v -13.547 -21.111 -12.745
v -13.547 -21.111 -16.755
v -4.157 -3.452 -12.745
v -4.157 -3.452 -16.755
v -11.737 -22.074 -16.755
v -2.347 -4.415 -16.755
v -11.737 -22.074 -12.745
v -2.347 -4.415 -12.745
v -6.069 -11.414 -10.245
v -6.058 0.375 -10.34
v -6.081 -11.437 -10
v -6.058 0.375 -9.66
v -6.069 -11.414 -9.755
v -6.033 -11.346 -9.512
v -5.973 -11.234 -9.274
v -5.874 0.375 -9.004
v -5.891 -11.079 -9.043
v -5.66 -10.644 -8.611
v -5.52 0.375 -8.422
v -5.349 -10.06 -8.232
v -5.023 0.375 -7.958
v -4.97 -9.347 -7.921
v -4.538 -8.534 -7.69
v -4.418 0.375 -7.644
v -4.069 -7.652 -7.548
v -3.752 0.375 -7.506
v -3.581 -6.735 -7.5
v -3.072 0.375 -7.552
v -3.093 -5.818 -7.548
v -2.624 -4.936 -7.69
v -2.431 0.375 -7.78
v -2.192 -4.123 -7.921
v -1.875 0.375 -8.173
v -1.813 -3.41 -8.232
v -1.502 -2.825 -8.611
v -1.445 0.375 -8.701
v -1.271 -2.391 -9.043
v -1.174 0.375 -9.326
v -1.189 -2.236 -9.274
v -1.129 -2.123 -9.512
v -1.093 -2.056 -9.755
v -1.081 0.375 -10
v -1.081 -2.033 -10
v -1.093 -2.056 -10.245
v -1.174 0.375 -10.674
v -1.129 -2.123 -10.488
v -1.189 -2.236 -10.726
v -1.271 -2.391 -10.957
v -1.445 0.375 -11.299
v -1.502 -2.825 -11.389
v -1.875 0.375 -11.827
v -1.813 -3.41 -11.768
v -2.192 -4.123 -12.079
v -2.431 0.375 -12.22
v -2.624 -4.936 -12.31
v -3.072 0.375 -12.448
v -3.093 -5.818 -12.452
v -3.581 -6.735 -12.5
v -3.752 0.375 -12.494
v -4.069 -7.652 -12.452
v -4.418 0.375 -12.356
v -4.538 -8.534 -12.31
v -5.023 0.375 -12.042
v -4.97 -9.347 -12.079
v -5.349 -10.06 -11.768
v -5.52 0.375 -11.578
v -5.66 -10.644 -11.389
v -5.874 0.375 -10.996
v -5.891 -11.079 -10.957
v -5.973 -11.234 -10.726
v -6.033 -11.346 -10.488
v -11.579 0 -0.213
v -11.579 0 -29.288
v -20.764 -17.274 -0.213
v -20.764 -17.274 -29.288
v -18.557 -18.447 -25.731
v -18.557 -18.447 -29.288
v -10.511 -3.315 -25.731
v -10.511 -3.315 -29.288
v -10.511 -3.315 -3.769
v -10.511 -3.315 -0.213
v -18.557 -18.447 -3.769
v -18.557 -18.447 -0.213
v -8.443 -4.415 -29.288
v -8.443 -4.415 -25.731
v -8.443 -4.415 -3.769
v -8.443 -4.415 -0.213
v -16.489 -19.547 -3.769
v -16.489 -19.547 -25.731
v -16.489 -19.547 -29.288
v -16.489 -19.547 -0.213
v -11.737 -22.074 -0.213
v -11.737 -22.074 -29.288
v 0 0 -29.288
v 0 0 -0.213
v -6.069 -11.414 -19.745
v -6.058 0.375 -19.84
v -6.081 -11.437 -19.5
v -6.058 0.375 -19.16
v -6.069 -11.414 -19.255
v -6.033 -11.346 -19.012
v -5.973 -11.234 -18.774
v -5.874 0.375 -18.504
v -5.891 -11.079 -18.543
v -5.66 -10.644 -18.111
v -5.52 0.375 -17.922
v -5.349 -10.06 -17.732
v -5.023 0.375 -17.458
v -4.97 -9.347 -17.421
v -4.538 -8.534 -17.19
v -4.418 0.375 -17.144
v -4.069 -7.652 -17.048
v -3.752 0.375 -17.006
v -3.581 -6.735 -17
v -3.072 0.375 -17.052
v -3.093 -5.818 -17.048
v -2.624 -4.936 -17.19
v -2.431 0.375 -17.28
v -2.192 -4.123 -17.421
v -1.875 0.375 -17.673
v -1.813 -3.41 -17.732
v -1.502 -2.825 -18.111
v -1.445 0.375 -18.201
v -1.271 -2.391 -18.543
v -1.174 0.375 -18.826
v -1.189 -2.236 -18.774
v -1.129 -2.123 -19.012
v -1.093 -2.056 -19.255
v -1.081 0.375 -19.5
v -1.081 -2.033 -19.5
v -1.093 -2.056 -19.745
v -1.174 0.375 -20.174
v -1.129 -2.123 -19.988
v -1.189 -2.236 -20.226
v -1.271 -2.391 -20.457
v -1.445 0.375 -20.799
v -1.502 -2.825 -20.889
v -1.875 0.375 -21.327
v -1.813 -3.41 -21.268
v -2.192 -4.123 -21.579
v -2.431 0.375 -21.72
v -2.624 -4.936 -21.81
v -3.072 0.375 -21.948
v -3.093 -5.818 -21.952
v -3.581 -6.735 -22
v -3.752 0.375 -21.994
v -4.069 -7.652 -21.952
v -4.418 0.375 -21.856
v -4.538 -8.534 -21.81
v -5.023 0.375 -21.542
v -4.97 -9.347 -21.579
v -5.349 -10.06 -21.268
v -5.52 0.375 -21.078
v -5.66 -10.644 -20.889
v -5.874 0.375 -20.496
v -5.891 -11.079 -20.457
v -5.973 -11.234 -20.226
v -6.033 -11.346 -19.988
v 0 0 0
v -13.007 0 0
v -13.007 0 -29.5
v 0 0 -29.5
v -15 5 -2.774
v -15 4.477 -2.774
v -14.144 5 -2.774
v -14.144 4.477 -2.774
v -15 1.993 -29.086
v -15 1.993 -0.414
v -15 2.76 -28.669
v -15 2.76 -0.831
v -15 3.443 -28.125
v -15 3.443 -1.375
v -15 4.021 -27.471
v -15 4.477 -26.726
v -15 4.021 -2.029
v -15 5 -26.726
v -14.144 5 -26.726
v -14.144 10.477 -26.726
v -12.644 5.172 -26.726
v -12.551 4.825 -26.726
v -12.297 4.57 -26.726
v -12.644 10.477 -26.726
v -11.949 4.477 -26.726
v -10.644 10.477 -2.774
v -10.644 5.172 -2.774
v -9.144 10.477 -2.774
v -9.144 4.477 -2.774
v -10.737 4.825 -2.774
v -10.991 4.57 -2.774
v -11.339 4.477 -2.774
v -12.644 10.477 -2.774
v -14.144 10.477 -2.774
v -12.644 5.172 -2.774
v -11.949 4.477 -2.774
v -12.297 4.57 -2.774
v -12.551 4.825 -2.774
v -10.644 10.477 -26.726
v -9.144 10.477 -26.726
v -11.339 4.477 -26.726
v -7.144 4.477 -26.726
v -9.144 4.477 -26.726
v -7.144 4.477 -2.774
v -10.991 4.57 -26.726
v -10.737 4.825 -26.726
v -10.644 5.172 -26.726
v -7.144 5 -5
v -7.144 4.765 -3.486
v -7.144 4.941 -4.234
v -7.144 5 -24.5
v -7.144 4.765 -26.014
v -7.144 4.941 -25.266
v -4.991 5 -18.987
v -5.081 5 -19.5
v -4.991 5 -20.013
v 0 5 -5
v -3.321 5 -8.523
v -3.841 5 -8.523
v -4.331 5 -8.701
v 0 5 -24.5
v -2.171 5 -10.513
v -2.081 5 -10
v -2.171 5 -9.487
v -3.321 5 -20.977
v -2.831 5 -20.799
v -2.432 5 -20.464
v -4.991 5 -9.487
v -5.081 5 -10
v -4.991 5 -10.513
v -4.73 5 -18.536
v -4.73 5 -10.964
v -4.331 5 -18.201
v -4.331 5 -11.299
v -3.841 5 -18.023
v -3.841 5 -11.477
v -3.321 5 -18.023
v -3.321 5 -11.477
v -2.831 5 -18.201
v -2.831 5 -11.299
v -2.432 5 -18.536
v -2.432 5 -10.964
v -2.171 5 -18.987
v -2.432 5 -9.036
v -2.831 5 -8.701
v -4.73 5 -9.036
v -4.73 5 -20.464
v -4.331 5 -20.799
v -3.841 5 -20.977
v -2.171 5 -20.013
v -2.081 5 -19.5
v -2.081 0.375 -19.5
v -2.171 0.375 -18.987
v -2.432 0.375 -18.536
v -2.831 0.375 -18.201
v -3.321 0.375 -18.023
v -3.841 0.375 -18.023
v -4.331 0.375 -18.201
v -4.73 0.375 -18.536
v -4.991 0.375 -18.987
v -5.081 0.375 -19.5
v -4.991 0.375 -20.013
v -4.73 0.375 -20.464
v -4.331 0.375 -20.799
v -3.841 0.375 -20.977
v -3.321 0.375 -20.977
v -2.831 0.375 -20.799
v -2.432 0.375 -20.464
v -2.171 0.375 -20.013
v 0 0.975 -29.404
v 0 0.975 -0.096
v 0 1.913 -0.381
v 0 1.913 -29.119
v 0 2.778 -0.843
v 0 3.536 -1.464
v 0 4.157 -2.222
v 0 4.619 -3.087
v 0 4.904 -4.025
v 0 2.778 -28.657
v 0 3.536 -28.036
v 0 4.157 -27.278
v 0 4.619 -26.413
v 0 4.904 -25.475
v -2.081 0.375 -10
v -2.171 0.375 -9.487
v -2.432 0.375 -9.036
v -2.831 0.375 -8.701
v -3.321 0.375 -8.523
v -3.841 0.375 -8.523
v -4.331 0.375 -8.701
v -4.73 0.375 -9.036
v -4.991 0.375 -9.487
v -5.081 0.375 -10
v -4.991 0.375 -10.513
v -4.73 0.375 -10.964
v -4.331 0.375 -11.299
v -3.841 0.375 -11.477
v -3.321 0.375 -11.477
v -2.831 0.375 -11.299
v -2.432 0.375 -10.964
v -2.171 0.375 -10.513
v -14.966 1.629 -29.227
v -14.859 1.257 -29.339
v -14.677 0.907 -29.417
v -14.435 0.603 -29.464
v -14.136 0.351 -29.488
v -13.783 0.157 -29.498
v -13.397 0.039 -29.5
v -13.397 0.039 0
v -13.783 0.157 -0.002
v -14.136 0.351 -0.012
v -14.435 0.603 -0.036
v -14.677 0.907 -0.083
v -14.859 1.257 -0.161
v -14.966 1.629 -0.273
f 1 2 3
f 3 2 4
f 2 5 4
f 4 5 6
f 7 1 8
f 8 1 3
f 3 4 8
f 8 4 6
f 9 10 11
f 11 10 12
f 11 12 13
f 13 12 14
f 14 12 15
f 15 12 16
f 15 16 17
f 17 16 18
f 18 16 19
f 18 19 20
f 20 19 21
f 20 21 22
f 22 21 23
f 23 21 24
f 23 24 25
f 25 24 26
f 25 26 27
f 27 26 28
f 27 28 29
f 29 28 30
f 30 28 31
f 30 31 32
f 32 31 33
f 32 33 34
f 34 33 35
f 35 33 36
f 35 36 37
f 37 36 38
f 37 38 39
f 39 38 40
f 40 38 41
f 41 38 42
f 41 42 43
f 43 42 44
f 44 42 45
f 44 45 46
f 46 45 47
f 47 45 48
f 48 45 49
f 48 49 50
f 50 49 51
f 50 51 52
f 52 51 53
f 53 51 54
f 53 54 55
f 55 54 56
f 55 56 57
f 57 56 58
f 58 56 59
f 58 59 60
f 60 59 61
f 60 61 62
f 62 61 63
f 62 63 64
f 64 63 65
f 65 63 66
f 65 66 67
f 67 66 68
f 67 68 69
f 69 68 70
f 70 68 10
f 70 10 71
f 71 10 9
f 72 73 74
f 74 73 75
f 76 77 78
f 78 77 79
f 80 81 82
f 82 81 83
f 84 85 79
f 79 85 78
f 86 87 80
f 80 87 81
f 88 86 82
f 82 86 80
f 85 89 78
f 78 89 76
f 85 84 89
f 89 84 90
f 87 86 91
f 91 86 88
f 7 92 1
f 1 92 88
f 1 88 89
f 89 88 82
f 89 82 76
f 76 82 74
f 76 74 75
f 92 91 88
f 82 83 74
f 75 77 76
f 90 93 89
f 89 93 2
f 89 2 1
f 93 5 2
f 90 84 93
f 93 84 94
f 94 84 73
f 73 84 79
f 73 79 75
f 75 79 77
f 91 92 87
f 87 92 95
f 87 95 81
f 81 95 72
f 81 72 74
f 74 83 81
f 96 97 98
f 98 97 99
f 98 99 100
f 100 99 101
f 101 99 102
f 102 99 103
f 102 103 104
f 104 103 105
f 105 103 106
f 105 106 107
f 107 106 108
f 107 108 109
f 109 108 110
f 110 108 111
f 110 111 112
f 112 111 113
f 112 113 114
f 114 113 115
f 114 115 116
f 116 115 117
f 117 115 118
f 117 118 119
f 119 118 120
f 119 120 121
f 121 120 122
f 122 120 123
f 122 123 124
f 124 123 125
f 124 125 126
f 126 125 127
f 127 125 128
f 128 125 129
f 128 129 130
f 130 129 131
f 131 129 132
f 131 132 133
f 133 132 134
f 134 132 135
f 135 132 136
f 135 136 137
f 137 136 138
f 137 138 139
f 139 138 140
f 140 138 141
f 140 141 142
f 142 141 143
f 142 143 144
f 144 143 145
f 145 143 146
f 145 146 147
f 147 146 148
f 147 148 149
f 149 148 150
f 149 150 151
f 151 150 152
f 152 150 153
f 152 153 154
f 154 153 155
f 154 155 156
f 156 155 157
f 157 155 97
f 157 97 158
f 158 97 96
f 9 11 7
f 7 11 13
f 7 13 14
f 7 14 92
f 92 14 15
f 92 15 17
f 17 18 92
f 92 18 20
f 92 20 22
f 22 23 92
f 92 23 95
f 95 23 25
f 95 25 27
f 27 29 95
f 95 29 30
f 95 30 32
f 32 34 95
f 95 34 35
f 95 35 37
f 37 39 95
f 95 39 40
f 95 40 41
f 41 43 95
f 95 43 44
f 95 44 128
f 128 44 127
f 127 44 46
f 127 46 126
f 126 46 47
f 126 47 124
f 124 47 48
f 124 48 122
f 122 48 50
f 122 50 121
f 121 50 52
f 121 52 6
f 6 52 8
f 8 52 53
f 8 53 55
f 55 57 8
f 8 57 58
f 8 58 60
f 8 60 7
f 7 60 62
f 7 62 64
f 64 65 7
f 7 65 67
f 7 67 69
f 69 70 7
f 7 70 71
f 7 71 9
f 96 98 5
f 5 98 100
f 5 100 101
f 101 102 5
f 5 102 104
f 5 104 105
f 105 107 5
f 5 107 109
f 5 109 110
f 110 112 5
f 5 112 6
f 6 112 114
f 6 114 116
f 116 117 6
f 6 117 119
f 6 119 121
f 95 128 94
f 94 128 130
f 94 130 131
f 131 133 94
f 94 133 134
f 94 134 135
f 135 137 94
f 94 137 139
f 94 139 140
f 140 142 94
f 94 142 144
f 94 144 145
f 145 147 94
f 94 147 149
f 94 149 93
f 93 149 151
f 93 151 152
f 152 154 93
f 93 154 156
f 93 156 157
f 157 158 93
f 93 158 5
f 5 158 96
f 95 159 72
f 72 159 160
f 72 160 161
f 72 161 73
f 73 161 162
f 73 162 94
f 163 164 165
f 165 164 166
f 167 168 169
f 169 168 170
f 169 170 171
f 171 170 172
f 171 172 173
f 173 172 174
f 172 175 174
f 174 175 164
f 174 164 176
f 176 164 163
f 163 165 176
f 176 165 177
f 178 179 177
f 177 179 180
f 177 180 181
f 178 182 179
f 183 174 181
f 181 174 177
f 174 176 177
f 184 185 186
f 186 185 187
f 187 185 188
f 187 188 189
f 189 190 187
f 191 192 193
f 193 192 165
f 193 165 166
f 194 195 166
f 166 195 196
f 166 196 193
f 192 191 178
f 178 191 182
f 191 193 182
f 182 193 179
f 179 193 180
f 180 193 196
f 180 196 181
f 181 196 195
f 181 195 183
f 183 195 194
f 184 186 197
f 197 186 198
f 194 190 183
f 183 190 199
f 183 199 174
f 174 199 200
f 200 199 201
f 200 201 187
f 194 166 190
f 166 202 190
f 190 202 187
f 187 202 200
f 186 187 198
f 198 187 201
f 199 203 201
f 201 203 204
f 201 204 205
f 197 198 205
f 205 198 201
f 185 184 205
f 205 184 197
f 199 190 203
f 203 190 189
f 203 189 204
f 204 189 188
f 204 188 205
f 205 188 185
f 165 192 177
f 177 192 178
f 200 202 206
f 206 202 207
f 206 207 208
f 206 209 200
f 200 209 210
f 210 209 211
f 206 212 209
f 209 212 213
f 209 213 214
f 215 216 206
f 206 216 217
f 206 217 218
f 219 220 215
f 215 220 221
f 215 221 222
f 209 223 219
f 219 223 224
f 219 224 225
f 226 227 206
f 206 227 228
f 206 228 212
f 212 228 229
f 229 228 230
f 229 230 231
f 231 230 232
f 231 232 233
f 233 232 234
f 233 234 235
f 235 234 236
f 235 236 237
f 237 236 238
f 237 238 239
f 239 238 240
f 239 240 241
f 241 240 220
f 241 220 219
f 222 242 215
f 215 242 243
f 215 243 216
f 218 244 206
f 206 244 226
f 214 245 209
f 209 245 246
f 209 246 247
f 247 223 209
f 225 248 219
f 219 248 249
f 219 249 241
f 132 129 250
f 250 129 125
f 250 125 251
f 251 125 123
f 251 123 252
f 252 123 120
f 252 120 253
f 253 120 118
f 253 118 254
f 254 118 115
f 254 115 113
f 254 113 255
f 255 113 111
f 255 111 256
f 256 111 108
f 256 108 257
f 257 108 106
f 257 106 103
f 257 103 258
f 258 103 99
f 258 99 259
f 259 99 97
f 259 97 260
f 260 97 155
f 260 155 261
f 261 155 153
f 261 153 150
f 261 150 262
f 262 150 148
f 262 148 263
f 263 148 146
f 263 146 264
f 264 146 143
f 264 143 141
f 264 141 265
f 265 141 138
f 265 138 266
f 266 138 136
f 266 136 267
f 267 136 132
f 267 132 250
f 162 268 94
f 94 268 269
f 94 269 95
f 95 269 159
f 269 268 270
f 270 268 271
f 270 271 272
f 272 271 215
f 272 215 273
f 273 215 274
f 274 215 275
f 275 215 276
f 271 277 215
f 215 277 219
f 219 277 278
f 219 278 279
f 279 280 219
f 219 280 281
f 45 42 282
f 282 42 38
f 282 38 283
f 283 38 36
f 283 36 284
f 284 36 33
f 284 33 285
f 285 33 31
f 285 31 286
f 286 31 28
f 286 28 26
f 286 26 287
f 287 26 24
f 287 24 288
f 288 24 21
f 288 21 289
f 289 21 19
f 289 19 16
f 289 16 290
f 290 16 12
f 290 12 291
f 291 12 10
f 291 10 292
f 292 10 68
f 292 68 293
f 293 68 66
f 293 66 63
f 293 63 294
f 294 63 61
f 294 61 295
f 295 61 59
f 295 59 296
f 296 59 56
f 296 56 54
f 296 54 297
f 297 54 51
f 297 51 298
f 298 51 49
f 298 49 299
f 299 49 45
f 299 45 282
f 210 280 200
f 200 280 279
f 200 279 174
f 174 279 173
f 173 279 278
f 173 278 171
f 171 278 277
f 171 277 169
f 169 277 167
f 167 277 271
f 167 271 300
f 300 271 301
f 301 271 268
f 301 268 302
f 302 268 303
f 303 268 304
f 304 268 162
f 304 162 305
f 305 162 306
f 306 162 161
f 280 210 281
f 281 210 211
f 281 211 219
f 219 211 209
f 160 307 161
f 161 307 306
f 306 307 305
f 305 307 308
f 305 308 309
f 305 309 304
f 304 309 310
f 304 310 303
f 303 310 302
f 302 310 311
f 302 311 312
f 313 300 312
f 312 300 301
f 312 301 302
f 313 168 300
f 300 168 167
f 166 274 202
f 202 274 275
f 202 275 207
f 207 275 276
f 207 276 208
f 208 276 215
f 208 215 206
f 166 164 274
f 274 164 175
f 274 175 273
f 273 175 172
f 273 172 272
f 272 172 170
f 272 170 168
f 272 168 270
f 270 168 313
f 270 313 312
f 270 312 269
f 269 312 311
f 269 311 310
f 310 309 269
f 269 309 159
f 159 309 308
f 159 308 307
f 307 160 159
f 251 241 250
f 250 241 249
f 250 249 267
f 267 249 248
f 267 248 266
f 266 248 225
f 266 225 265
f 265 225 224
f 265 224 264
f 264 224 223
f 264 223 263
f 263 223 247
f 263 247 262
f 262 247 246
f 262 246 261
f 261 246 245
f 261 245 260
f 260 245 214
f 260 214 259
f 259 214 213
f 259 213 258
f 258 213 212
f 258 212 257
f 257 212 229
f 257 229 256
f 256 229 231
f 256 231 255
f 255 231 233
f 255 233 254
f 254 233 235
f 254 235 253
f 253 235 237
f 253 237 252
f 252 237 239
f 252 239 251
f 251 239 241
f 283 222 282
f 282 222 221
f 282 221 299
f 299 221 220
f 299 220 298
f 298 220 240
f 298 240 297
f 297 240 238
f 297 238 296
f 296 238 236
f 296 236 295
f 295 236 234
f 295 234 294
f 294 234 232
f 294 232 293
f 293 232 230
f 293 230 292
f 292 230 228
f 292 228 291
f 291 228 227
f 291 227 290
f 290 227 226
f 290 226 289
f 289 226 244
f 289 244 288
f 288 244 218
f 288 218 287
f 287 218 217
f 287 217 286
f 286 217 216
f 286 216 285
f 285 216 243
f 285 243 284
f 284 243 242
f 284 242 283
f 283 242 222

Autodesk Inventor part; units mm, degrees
ref_plane "YZ Plane" through (0, 0, 0) normal (1, 0, 0) x (0, 1, 0)
ref_plane "XZ Plane" through (0, 0, 0) normal (0, 1, 0) x (-1, 0, 0)
sketch "Sketch1" plane through (0, 0, 0) normal (0, 1, 0) x (-1, 0, 0)
  line L0 (0, 0) -> (15, 0)
  line L1 (15, 0) -> (15, -29.5)
  line L2 (15, -29.5) -> (0, -29.5)
  line L3 (0, -29.5) -> (0, 0)
  dimension "d0" = 15
  dimension "d1" = 29.5
extrude "Extrusion1" add sketch "Sketch1" along normal blind 5
fillet "Fillet1" radius 5 2 edges at (-7.5, 5, 0) (-7.5, 5, -29.5)
sketch "Sketch2" plane through (0, 0, 0) normal (0, -1, 0) x (1, 0, 0)
  circle A0 centre (-3.581, -10) radius 1.5
  line L0 (-15, -29.5) -> (-15, 0) projected
  line L1 (-15, -14.75) -> (-4.074, -14.75)
  line L2 (-4.074, 0) -> (-4.074, -29.5) projected
  circle A1 centre (-3.581, -19.5) radius 1.5
  line L3 (0, -27.3987) -> (0, -2.1013) projected
  point P0 (0, 0)
  dimension "d6" = 3
  dimension "d7" = 4.75
  dimension "d8" = 10.926
  dimension "d10" = 3
  dimension "d11" = 4.75
  dimension "d15" = 3.581
  dimension "d16" = 3.581
extrude "Extrusion2" cut sketch "Sketch2" against normal up to surface (5 mm away)
fillet "Fillet3" radius 1.993 1 edges at (-15, 0, -14.75)
sketch "Sketch3" plane through (0, 0, 0) normal (0, -1, 0) x (1, 0, 0)
  circle A0 centre (-3.581, -10) radius 2.5
  circle A1 centre (-3.581, -19.5) radius 2.5
  circle A2 centre (-3.581, -10) radius 1.5 projected
  circle A3 centre (-3.581, -19.5) radius 1.5 projected
  point P0 (0, 0)
  dimension "d18" = 5
  dimension "d19" = 5
  dimension "d20" = 0
  dimension "d21" = 0
  dimension "d22" = 0
  dimension "d23" = 0
extrude "Extrusion3" cut sketch "Sketch3" along normal blind 32.5 and the other way blind 0.375
sketch "Sketch4" plane through (-15, 5, -24.5) normal (-1, 0, 0) x (0, 0, 1)
  line L0 (24.5, -3.007) -> (-5, -3.007)
  line L1 (-5, -3.007) -> (-5, 0)
  line L2 (-5, 0) -> (24.5, 0)
  line L3 (24.5, 0) -> (24.5, -3.007)
  line L4 (-5, -5) -> (24.5, -5) projected
  line L5 (0, 0) -> (19.5, 0) projected
  dimension "d26" = 1.993
  dimension "d27" = 0
  dimension "d28" = 0
  dimension "d29" = 0
extrude "Extrusion4" add sketch "Sketch4" against normal blind 4.356
sketch "Sketch6" plane through (-15, 1.993, -29.5) normal (0, 0, -1) x (-1, 0, 0)
  line L0 (-3.661, 2.484) -> (-3.051, 2.484)
  line L1 (-0.856, 2.484) -> (-0.856, 8.484)
  line L2 (-0.856, 8.484) -> (-5.856, 8.484)
  line L3 (-5.856, 8.484) -> (-5.856, 2.484)
  line L4 (-15, -1.993) -> (-1.993, -1.993) projected
  line L5 (0, 3.007) -> (0, 0) projected
  line L6 (-15, -1.993) -> (-15, 3.007) projected
  line L7 (-4.356, 8.484) -> (-4.356, 3.179)
  line L8 (-2.356, 8.484) -> (-2.356, 3.179)
  arc A0 (-4.356, 3.179) -> (-3.661, 2.484) centre (-3.661, 3.179) ccw
  arc A1 (-3.051, 2.484) -> (-2.356, 3.179) centre (-3.051, 3.179) ccw
  line L9 (-0.856, 2.484) -> (-3.051, 2.484)
  line L10 (-5.856, 2.484) -> (-3.661, 2.484)
  line L11 (-5.856, 2.484) -> (-7.856, 2.484)
  line L12 (-15, 3.007) -> (-4.356, 3.007) projected
  line L13 (-5.856, 2.484) -> (-3.856, 2.484) construction
  line L14 (-7.856, 2.484) -> (-7.856, 8.484)
  line L15 (-7.856, 3.3104) -> (-5.856, 3.3104)
  point P0 (-10.926, -1.993)
  point P1 (-4.356, -1.993)
  dimension "d37" = 4.477
  dimension "d38" = 0.856
  dimension "d39" = 10.477
  dimension "d40" = 9.144
  dimension "d41" = 1.5
  dimension "d42" = 1.5
  dimension "d43" = 2
  dimension "d44" = 0.695
  dimension "d45" = 2
  dimension "d46" = 180
extrude "Extrusion6" cut sketch "Sketch6" against normal up to surface (29.5 mm away)
extrude "Extrusion7" add sketch "Sketch6" against normal up to surface (29.5 mm away) contours L10 L3 L2 L7 A0 | A1 L8 L2 L1 L9
extrude "Extrusion8" cut sketch "Sketch6" against normal blind 2.774 contours L10 L3 L2 L7 A0 | A1 L8 L2 L1 L9
sketch "Sketch7" plane through (-15, 1.993, 0) normal (0, 0, 1) x (1, 0, 0)
  line L0 (5.856, 8.484) -> (5.856, 2.484) projected
  line L1 (5.856, 2.484) -> (0.856, 2.484)
  line L2 (0.856, 2.484) -> (0.856, 11.6469)
  line L3 (0.856, 11.6469) -> (5.856, 11.6469)
  line L4 (5.856, 11.6469) -> (5.856, 2.484)
  line L5 (0.856, 3.007) -> (0.856, 8.484) projected
  point P0 (15, -1.993)
  dimension "d53" = 0
extrude "Extrusion9" cut sketch "Sketch7" against normal blind 2.774
sketch "Sketch8" plane through (-10.644, 5, -24.5) normal (1, 0, 0) x (0, 0, -1)
  arc A0 (4.5856, -3.007) -> (2.2263, -0.523) centre (0, -5) ccw projected
  arc A1 (4.5856, -3.007) -> (2.2263, -0.523) centre (0, -5) ccw
  line L0 (4.5856, -3.007) -> (5, -3.007) projected
  line L1 (4.5856, -3.007) -> (5, -3.007)
  line L2 (5, -3.007) -> (5, -0.523) projected
  line L3 (5, -3.007) -> (5, -0.523)
  line L4 (-24.5, 0) -> (5, 0) projected
  line L5 (5, -0.523) -> (5, 0)
  line L6 (5, 0) -> (2.226, 0)
  line L7 (2.226, -0.523) -> (2.226, 5.477) projected
  line L8 (2.226, -0.523) -> (2.226, 0)
  arc A2 (-19.5, 0) -> (-24.5, -5) centre (-19.5, -5) ccw projected
  line L9 (-24.0856, -3.007) -> (4.5856, -3.007) projected
  arc A3 (-21.7263, -0.523) -> (-24.0856, -3.007) centre (-19.5, -5) ccw
  line L10 (-24.5, -3.007) -> (-24.0856, -3.007) projected
  line L11 (-24.0856, -3.007) -> (-24.5, -3.007)
  line L12 (-24.5, -3.007) -> (-24.5, 0)
  line L13 (-24.5, 0) -> (-21.7263, 0)
  line L14 (2.2263, -0.523) -> (-21.7263, -0.523) projected
  line L15 (-21.7263, -0.523) -> (-21.7263, 0)
  line L16 (-21.726, 5.477) -> (-21.726, -0.523) projected
  point P0 (-22.3987, -0.926)
  point P1 (-24.0856, -3.007)
  point P2 (2.226, 0)
extrude "Extrusion10" cut sketch "Sketch8" against normal blind 9.726 contours A0 L7 L4 L5 L2 L0 | L10 L12 L4 L15 A2
ref_plane "Work Plane1" through (-11.25, 0, 0) normal (0, 0, 1) x (1, 0, 0)
sketch "Sketch9" plane through (-11.25, 0, 0) normal (0, 0, 1) x (1, 0, 0)
  line L0 (11.25, 0) -> (-1.757, 0) projected
  line L1 (11.25, 0) -> (17.6322, 0) construction
  line L2 (11.25, 0) -> (6.4097, 2.5736)
  line L3 (6.4097, 2.5736) -> (-5.3271, -19.5)
  line L4 (-5.3271, -19.5) -> (-0.4868, -22.0737)
  line L5 (-0.4868, -22.0737) -> (11.25, 0)
  line L6 (11.25, 0) -> (15.8244, 0)
  point P0 (5.0413, 0)
  dimension "d59" = 5.482
  dimension "d60" = 25
  dimension "d61" = 118
  dimension "d62" = 0
  dimension "d63" = 0
extrude "Extrusion11" add sketch "Sketch9" against normal blind 29.5 contours L5 L4 L3 L0
sketch "Sketch10" plane through (-16.5771, -19.5, -29.5) normal (-0.4694716, -0.8829476, 0) x (0.8829476, -0.4694716, 0)
  line L0 (5.482, 29.2875) -> (0, 29.2875)
  line L1 (0, 29.2875) -> (0, 0.2125)
  line L2 (0, 0.2125) -> (5.482, 0.2125)
  line L3 (5.482, 0.2125) -> (5.482, 29.2875)
  line L4 (5.482, 29.5) -> (5.482, 0) projected
  line L5 (0, 29.5) -> (0, 0) projected
  line L6 (5.482, 0) -> (0, 0) projected
  line L7 (0, 29.5) -> (5.482, 29.5) projected
  point P0 (5.482, 0.2125)
  point P1 (0, 0.2125)
  point P2 (0, 29.2875)
  point P3 (5.482, 29.2875)
  dimension "d66" = 0
  dimension "d67" = 0
  dimension "d68" = 0.2125
  dimension "d69" = 0.2125
  dimension "d70" = 29.075
extrude "Extrusion12" cut sketch "Sketch10" against normal up to surface contours L0 L5 L7 L4 | L4 L6 L5 L2 surface through (-7.5, 0, -14.75) normal (0, 1, 0)
sketch "Sketch11" plane through (-11.7368, -22.0737, -29.2875) normal (-0.4694716, -0.8829476, 0) x (0.8829476, -0.4694716, 0)
  line L0 (-5.482, 0) -> (-5.482, 29.075) projected
  line L1 (0, 0) -> (-5.482, 0) projected
  line L2 (-5.482, 29.075) -> (-5.382, 29.075)
  line L3 (-5.382, 29.075) -> (-5.382, 0)
  line L4 (-5.382, 0) -> (-5.482, 0)
  line L5 (-5.482, 0) -> (-5.482, 29.075)
  point P0 (0, 29.2875)
  dimension "d73" = 0.1
extrude "Extrusion13" cut sketch "Sketch11" against normal up to surface surface through (-7.5, 0, -14.75) normal (0, 1, 0)
sketch "Sketch12" plane through (-16.4888, -19.547, -29.2875) normal (-0.8829476, 0.4694716, 0) x (0, 0, 1)
  line L0 (25.519, 0) -> (3.556, 0)
  line L1 (3.556, 0) -> (3.556, 17.1383)
  line L2 (3.556, 17.1383) -> (25.519, 17.1383)
  line L3 (25.519, 17.1383) -> (25.519, 0)
  line L4 (29.075, 0) -> (0, 0) projected
  line L5 (0, 0) -> (0, 22.1383) projected
  line L6 (0, 22.1383) -> (29.075, 22.1383) projected
  line L7 (29.075, 22.1383) -> (29.075, 0) projected
  line L8 (29.075, 17.1383) -> (0, 17.1383)
  line L9 (0, 17.1383) -> (0, 22.1383)
  line L10 (0, 22.1383) -> (29.075, 22.1383)
  line L11 (29.075, 22.1383) -> (29.075, 17.1383)
  point P0 (29.2875, 25)
  point P1 (3.556, 17.1383)
  point P2 (25.519, 17.1383)
  dimension "d76" = 0
  dimension "d77" = 21.963
  dimension "d78" = 29.075
  dimension "d79" = 3.556
  dimension "d80" = 5
extrude "Extrusion14" add sketch "Sketch12" along normal blind 2.342 contours L0 L1 L2 L3 | L2 L8 L5 L6 L7
sketch "Sketch13" plane through (-18.5567, -18.4475, -29.2875) normal (-0.8829476, 0.4694716, 0) x (0, 0, 1)
  line L0 (0, 20.8931) -> (29.075, 20.8931) projected
  line L1 (29.075, 0) -> (0, 0)
  line L2 (0, 0) -> (0, 20.8931)
  line L3 (0, 20.8931) -> (29.075, 20.8931)
  line L4 (29.075, 20.8931) -> (29.075, 0)
  point P0 (29.2875, 25)
  point P1 (29.075, 20.8931)
extrude "Extrusion15" add sketch "Sketch13" along normal blind 2.5
sketch "Sketch14" plane through (-11.7368, -22.0737, -29.2875) normal (-0.4694716, -0.8829476, 0) x (0.8829476, -0.4694716, 0)
  line L0 (0, 16.5425) -> (-2.05, 16.5425)
  line L1 (-2.05, 16.5425) -> (-2.05, 12.5325)
  line L2 (-2.05, 12.5325) -> (0, 12.5325)
  line L3 (0, 12.5325) -> (0, 16.5425)
  line L4 (0, 29.075) -> (0, 0) projected
  line L5 (-5.382, 0) -> (0, 0) projected
  point P0 (0, 29.2875)
  dimension "d85" = 0
  dimension "d86" = 4.01
  dimension "d87" = 29.075
  dimension "d88" = 12.5325
  dimension "d89" = 2.05
extrude "Extrusion16" cut sketch "Sketch14" against normal blind 20
extrude "Extrusion17" cut sketch "Sketch3" along normal blind 32.5 contours A0 | A1 | A2 | A3
properties part number "bottomclip"
